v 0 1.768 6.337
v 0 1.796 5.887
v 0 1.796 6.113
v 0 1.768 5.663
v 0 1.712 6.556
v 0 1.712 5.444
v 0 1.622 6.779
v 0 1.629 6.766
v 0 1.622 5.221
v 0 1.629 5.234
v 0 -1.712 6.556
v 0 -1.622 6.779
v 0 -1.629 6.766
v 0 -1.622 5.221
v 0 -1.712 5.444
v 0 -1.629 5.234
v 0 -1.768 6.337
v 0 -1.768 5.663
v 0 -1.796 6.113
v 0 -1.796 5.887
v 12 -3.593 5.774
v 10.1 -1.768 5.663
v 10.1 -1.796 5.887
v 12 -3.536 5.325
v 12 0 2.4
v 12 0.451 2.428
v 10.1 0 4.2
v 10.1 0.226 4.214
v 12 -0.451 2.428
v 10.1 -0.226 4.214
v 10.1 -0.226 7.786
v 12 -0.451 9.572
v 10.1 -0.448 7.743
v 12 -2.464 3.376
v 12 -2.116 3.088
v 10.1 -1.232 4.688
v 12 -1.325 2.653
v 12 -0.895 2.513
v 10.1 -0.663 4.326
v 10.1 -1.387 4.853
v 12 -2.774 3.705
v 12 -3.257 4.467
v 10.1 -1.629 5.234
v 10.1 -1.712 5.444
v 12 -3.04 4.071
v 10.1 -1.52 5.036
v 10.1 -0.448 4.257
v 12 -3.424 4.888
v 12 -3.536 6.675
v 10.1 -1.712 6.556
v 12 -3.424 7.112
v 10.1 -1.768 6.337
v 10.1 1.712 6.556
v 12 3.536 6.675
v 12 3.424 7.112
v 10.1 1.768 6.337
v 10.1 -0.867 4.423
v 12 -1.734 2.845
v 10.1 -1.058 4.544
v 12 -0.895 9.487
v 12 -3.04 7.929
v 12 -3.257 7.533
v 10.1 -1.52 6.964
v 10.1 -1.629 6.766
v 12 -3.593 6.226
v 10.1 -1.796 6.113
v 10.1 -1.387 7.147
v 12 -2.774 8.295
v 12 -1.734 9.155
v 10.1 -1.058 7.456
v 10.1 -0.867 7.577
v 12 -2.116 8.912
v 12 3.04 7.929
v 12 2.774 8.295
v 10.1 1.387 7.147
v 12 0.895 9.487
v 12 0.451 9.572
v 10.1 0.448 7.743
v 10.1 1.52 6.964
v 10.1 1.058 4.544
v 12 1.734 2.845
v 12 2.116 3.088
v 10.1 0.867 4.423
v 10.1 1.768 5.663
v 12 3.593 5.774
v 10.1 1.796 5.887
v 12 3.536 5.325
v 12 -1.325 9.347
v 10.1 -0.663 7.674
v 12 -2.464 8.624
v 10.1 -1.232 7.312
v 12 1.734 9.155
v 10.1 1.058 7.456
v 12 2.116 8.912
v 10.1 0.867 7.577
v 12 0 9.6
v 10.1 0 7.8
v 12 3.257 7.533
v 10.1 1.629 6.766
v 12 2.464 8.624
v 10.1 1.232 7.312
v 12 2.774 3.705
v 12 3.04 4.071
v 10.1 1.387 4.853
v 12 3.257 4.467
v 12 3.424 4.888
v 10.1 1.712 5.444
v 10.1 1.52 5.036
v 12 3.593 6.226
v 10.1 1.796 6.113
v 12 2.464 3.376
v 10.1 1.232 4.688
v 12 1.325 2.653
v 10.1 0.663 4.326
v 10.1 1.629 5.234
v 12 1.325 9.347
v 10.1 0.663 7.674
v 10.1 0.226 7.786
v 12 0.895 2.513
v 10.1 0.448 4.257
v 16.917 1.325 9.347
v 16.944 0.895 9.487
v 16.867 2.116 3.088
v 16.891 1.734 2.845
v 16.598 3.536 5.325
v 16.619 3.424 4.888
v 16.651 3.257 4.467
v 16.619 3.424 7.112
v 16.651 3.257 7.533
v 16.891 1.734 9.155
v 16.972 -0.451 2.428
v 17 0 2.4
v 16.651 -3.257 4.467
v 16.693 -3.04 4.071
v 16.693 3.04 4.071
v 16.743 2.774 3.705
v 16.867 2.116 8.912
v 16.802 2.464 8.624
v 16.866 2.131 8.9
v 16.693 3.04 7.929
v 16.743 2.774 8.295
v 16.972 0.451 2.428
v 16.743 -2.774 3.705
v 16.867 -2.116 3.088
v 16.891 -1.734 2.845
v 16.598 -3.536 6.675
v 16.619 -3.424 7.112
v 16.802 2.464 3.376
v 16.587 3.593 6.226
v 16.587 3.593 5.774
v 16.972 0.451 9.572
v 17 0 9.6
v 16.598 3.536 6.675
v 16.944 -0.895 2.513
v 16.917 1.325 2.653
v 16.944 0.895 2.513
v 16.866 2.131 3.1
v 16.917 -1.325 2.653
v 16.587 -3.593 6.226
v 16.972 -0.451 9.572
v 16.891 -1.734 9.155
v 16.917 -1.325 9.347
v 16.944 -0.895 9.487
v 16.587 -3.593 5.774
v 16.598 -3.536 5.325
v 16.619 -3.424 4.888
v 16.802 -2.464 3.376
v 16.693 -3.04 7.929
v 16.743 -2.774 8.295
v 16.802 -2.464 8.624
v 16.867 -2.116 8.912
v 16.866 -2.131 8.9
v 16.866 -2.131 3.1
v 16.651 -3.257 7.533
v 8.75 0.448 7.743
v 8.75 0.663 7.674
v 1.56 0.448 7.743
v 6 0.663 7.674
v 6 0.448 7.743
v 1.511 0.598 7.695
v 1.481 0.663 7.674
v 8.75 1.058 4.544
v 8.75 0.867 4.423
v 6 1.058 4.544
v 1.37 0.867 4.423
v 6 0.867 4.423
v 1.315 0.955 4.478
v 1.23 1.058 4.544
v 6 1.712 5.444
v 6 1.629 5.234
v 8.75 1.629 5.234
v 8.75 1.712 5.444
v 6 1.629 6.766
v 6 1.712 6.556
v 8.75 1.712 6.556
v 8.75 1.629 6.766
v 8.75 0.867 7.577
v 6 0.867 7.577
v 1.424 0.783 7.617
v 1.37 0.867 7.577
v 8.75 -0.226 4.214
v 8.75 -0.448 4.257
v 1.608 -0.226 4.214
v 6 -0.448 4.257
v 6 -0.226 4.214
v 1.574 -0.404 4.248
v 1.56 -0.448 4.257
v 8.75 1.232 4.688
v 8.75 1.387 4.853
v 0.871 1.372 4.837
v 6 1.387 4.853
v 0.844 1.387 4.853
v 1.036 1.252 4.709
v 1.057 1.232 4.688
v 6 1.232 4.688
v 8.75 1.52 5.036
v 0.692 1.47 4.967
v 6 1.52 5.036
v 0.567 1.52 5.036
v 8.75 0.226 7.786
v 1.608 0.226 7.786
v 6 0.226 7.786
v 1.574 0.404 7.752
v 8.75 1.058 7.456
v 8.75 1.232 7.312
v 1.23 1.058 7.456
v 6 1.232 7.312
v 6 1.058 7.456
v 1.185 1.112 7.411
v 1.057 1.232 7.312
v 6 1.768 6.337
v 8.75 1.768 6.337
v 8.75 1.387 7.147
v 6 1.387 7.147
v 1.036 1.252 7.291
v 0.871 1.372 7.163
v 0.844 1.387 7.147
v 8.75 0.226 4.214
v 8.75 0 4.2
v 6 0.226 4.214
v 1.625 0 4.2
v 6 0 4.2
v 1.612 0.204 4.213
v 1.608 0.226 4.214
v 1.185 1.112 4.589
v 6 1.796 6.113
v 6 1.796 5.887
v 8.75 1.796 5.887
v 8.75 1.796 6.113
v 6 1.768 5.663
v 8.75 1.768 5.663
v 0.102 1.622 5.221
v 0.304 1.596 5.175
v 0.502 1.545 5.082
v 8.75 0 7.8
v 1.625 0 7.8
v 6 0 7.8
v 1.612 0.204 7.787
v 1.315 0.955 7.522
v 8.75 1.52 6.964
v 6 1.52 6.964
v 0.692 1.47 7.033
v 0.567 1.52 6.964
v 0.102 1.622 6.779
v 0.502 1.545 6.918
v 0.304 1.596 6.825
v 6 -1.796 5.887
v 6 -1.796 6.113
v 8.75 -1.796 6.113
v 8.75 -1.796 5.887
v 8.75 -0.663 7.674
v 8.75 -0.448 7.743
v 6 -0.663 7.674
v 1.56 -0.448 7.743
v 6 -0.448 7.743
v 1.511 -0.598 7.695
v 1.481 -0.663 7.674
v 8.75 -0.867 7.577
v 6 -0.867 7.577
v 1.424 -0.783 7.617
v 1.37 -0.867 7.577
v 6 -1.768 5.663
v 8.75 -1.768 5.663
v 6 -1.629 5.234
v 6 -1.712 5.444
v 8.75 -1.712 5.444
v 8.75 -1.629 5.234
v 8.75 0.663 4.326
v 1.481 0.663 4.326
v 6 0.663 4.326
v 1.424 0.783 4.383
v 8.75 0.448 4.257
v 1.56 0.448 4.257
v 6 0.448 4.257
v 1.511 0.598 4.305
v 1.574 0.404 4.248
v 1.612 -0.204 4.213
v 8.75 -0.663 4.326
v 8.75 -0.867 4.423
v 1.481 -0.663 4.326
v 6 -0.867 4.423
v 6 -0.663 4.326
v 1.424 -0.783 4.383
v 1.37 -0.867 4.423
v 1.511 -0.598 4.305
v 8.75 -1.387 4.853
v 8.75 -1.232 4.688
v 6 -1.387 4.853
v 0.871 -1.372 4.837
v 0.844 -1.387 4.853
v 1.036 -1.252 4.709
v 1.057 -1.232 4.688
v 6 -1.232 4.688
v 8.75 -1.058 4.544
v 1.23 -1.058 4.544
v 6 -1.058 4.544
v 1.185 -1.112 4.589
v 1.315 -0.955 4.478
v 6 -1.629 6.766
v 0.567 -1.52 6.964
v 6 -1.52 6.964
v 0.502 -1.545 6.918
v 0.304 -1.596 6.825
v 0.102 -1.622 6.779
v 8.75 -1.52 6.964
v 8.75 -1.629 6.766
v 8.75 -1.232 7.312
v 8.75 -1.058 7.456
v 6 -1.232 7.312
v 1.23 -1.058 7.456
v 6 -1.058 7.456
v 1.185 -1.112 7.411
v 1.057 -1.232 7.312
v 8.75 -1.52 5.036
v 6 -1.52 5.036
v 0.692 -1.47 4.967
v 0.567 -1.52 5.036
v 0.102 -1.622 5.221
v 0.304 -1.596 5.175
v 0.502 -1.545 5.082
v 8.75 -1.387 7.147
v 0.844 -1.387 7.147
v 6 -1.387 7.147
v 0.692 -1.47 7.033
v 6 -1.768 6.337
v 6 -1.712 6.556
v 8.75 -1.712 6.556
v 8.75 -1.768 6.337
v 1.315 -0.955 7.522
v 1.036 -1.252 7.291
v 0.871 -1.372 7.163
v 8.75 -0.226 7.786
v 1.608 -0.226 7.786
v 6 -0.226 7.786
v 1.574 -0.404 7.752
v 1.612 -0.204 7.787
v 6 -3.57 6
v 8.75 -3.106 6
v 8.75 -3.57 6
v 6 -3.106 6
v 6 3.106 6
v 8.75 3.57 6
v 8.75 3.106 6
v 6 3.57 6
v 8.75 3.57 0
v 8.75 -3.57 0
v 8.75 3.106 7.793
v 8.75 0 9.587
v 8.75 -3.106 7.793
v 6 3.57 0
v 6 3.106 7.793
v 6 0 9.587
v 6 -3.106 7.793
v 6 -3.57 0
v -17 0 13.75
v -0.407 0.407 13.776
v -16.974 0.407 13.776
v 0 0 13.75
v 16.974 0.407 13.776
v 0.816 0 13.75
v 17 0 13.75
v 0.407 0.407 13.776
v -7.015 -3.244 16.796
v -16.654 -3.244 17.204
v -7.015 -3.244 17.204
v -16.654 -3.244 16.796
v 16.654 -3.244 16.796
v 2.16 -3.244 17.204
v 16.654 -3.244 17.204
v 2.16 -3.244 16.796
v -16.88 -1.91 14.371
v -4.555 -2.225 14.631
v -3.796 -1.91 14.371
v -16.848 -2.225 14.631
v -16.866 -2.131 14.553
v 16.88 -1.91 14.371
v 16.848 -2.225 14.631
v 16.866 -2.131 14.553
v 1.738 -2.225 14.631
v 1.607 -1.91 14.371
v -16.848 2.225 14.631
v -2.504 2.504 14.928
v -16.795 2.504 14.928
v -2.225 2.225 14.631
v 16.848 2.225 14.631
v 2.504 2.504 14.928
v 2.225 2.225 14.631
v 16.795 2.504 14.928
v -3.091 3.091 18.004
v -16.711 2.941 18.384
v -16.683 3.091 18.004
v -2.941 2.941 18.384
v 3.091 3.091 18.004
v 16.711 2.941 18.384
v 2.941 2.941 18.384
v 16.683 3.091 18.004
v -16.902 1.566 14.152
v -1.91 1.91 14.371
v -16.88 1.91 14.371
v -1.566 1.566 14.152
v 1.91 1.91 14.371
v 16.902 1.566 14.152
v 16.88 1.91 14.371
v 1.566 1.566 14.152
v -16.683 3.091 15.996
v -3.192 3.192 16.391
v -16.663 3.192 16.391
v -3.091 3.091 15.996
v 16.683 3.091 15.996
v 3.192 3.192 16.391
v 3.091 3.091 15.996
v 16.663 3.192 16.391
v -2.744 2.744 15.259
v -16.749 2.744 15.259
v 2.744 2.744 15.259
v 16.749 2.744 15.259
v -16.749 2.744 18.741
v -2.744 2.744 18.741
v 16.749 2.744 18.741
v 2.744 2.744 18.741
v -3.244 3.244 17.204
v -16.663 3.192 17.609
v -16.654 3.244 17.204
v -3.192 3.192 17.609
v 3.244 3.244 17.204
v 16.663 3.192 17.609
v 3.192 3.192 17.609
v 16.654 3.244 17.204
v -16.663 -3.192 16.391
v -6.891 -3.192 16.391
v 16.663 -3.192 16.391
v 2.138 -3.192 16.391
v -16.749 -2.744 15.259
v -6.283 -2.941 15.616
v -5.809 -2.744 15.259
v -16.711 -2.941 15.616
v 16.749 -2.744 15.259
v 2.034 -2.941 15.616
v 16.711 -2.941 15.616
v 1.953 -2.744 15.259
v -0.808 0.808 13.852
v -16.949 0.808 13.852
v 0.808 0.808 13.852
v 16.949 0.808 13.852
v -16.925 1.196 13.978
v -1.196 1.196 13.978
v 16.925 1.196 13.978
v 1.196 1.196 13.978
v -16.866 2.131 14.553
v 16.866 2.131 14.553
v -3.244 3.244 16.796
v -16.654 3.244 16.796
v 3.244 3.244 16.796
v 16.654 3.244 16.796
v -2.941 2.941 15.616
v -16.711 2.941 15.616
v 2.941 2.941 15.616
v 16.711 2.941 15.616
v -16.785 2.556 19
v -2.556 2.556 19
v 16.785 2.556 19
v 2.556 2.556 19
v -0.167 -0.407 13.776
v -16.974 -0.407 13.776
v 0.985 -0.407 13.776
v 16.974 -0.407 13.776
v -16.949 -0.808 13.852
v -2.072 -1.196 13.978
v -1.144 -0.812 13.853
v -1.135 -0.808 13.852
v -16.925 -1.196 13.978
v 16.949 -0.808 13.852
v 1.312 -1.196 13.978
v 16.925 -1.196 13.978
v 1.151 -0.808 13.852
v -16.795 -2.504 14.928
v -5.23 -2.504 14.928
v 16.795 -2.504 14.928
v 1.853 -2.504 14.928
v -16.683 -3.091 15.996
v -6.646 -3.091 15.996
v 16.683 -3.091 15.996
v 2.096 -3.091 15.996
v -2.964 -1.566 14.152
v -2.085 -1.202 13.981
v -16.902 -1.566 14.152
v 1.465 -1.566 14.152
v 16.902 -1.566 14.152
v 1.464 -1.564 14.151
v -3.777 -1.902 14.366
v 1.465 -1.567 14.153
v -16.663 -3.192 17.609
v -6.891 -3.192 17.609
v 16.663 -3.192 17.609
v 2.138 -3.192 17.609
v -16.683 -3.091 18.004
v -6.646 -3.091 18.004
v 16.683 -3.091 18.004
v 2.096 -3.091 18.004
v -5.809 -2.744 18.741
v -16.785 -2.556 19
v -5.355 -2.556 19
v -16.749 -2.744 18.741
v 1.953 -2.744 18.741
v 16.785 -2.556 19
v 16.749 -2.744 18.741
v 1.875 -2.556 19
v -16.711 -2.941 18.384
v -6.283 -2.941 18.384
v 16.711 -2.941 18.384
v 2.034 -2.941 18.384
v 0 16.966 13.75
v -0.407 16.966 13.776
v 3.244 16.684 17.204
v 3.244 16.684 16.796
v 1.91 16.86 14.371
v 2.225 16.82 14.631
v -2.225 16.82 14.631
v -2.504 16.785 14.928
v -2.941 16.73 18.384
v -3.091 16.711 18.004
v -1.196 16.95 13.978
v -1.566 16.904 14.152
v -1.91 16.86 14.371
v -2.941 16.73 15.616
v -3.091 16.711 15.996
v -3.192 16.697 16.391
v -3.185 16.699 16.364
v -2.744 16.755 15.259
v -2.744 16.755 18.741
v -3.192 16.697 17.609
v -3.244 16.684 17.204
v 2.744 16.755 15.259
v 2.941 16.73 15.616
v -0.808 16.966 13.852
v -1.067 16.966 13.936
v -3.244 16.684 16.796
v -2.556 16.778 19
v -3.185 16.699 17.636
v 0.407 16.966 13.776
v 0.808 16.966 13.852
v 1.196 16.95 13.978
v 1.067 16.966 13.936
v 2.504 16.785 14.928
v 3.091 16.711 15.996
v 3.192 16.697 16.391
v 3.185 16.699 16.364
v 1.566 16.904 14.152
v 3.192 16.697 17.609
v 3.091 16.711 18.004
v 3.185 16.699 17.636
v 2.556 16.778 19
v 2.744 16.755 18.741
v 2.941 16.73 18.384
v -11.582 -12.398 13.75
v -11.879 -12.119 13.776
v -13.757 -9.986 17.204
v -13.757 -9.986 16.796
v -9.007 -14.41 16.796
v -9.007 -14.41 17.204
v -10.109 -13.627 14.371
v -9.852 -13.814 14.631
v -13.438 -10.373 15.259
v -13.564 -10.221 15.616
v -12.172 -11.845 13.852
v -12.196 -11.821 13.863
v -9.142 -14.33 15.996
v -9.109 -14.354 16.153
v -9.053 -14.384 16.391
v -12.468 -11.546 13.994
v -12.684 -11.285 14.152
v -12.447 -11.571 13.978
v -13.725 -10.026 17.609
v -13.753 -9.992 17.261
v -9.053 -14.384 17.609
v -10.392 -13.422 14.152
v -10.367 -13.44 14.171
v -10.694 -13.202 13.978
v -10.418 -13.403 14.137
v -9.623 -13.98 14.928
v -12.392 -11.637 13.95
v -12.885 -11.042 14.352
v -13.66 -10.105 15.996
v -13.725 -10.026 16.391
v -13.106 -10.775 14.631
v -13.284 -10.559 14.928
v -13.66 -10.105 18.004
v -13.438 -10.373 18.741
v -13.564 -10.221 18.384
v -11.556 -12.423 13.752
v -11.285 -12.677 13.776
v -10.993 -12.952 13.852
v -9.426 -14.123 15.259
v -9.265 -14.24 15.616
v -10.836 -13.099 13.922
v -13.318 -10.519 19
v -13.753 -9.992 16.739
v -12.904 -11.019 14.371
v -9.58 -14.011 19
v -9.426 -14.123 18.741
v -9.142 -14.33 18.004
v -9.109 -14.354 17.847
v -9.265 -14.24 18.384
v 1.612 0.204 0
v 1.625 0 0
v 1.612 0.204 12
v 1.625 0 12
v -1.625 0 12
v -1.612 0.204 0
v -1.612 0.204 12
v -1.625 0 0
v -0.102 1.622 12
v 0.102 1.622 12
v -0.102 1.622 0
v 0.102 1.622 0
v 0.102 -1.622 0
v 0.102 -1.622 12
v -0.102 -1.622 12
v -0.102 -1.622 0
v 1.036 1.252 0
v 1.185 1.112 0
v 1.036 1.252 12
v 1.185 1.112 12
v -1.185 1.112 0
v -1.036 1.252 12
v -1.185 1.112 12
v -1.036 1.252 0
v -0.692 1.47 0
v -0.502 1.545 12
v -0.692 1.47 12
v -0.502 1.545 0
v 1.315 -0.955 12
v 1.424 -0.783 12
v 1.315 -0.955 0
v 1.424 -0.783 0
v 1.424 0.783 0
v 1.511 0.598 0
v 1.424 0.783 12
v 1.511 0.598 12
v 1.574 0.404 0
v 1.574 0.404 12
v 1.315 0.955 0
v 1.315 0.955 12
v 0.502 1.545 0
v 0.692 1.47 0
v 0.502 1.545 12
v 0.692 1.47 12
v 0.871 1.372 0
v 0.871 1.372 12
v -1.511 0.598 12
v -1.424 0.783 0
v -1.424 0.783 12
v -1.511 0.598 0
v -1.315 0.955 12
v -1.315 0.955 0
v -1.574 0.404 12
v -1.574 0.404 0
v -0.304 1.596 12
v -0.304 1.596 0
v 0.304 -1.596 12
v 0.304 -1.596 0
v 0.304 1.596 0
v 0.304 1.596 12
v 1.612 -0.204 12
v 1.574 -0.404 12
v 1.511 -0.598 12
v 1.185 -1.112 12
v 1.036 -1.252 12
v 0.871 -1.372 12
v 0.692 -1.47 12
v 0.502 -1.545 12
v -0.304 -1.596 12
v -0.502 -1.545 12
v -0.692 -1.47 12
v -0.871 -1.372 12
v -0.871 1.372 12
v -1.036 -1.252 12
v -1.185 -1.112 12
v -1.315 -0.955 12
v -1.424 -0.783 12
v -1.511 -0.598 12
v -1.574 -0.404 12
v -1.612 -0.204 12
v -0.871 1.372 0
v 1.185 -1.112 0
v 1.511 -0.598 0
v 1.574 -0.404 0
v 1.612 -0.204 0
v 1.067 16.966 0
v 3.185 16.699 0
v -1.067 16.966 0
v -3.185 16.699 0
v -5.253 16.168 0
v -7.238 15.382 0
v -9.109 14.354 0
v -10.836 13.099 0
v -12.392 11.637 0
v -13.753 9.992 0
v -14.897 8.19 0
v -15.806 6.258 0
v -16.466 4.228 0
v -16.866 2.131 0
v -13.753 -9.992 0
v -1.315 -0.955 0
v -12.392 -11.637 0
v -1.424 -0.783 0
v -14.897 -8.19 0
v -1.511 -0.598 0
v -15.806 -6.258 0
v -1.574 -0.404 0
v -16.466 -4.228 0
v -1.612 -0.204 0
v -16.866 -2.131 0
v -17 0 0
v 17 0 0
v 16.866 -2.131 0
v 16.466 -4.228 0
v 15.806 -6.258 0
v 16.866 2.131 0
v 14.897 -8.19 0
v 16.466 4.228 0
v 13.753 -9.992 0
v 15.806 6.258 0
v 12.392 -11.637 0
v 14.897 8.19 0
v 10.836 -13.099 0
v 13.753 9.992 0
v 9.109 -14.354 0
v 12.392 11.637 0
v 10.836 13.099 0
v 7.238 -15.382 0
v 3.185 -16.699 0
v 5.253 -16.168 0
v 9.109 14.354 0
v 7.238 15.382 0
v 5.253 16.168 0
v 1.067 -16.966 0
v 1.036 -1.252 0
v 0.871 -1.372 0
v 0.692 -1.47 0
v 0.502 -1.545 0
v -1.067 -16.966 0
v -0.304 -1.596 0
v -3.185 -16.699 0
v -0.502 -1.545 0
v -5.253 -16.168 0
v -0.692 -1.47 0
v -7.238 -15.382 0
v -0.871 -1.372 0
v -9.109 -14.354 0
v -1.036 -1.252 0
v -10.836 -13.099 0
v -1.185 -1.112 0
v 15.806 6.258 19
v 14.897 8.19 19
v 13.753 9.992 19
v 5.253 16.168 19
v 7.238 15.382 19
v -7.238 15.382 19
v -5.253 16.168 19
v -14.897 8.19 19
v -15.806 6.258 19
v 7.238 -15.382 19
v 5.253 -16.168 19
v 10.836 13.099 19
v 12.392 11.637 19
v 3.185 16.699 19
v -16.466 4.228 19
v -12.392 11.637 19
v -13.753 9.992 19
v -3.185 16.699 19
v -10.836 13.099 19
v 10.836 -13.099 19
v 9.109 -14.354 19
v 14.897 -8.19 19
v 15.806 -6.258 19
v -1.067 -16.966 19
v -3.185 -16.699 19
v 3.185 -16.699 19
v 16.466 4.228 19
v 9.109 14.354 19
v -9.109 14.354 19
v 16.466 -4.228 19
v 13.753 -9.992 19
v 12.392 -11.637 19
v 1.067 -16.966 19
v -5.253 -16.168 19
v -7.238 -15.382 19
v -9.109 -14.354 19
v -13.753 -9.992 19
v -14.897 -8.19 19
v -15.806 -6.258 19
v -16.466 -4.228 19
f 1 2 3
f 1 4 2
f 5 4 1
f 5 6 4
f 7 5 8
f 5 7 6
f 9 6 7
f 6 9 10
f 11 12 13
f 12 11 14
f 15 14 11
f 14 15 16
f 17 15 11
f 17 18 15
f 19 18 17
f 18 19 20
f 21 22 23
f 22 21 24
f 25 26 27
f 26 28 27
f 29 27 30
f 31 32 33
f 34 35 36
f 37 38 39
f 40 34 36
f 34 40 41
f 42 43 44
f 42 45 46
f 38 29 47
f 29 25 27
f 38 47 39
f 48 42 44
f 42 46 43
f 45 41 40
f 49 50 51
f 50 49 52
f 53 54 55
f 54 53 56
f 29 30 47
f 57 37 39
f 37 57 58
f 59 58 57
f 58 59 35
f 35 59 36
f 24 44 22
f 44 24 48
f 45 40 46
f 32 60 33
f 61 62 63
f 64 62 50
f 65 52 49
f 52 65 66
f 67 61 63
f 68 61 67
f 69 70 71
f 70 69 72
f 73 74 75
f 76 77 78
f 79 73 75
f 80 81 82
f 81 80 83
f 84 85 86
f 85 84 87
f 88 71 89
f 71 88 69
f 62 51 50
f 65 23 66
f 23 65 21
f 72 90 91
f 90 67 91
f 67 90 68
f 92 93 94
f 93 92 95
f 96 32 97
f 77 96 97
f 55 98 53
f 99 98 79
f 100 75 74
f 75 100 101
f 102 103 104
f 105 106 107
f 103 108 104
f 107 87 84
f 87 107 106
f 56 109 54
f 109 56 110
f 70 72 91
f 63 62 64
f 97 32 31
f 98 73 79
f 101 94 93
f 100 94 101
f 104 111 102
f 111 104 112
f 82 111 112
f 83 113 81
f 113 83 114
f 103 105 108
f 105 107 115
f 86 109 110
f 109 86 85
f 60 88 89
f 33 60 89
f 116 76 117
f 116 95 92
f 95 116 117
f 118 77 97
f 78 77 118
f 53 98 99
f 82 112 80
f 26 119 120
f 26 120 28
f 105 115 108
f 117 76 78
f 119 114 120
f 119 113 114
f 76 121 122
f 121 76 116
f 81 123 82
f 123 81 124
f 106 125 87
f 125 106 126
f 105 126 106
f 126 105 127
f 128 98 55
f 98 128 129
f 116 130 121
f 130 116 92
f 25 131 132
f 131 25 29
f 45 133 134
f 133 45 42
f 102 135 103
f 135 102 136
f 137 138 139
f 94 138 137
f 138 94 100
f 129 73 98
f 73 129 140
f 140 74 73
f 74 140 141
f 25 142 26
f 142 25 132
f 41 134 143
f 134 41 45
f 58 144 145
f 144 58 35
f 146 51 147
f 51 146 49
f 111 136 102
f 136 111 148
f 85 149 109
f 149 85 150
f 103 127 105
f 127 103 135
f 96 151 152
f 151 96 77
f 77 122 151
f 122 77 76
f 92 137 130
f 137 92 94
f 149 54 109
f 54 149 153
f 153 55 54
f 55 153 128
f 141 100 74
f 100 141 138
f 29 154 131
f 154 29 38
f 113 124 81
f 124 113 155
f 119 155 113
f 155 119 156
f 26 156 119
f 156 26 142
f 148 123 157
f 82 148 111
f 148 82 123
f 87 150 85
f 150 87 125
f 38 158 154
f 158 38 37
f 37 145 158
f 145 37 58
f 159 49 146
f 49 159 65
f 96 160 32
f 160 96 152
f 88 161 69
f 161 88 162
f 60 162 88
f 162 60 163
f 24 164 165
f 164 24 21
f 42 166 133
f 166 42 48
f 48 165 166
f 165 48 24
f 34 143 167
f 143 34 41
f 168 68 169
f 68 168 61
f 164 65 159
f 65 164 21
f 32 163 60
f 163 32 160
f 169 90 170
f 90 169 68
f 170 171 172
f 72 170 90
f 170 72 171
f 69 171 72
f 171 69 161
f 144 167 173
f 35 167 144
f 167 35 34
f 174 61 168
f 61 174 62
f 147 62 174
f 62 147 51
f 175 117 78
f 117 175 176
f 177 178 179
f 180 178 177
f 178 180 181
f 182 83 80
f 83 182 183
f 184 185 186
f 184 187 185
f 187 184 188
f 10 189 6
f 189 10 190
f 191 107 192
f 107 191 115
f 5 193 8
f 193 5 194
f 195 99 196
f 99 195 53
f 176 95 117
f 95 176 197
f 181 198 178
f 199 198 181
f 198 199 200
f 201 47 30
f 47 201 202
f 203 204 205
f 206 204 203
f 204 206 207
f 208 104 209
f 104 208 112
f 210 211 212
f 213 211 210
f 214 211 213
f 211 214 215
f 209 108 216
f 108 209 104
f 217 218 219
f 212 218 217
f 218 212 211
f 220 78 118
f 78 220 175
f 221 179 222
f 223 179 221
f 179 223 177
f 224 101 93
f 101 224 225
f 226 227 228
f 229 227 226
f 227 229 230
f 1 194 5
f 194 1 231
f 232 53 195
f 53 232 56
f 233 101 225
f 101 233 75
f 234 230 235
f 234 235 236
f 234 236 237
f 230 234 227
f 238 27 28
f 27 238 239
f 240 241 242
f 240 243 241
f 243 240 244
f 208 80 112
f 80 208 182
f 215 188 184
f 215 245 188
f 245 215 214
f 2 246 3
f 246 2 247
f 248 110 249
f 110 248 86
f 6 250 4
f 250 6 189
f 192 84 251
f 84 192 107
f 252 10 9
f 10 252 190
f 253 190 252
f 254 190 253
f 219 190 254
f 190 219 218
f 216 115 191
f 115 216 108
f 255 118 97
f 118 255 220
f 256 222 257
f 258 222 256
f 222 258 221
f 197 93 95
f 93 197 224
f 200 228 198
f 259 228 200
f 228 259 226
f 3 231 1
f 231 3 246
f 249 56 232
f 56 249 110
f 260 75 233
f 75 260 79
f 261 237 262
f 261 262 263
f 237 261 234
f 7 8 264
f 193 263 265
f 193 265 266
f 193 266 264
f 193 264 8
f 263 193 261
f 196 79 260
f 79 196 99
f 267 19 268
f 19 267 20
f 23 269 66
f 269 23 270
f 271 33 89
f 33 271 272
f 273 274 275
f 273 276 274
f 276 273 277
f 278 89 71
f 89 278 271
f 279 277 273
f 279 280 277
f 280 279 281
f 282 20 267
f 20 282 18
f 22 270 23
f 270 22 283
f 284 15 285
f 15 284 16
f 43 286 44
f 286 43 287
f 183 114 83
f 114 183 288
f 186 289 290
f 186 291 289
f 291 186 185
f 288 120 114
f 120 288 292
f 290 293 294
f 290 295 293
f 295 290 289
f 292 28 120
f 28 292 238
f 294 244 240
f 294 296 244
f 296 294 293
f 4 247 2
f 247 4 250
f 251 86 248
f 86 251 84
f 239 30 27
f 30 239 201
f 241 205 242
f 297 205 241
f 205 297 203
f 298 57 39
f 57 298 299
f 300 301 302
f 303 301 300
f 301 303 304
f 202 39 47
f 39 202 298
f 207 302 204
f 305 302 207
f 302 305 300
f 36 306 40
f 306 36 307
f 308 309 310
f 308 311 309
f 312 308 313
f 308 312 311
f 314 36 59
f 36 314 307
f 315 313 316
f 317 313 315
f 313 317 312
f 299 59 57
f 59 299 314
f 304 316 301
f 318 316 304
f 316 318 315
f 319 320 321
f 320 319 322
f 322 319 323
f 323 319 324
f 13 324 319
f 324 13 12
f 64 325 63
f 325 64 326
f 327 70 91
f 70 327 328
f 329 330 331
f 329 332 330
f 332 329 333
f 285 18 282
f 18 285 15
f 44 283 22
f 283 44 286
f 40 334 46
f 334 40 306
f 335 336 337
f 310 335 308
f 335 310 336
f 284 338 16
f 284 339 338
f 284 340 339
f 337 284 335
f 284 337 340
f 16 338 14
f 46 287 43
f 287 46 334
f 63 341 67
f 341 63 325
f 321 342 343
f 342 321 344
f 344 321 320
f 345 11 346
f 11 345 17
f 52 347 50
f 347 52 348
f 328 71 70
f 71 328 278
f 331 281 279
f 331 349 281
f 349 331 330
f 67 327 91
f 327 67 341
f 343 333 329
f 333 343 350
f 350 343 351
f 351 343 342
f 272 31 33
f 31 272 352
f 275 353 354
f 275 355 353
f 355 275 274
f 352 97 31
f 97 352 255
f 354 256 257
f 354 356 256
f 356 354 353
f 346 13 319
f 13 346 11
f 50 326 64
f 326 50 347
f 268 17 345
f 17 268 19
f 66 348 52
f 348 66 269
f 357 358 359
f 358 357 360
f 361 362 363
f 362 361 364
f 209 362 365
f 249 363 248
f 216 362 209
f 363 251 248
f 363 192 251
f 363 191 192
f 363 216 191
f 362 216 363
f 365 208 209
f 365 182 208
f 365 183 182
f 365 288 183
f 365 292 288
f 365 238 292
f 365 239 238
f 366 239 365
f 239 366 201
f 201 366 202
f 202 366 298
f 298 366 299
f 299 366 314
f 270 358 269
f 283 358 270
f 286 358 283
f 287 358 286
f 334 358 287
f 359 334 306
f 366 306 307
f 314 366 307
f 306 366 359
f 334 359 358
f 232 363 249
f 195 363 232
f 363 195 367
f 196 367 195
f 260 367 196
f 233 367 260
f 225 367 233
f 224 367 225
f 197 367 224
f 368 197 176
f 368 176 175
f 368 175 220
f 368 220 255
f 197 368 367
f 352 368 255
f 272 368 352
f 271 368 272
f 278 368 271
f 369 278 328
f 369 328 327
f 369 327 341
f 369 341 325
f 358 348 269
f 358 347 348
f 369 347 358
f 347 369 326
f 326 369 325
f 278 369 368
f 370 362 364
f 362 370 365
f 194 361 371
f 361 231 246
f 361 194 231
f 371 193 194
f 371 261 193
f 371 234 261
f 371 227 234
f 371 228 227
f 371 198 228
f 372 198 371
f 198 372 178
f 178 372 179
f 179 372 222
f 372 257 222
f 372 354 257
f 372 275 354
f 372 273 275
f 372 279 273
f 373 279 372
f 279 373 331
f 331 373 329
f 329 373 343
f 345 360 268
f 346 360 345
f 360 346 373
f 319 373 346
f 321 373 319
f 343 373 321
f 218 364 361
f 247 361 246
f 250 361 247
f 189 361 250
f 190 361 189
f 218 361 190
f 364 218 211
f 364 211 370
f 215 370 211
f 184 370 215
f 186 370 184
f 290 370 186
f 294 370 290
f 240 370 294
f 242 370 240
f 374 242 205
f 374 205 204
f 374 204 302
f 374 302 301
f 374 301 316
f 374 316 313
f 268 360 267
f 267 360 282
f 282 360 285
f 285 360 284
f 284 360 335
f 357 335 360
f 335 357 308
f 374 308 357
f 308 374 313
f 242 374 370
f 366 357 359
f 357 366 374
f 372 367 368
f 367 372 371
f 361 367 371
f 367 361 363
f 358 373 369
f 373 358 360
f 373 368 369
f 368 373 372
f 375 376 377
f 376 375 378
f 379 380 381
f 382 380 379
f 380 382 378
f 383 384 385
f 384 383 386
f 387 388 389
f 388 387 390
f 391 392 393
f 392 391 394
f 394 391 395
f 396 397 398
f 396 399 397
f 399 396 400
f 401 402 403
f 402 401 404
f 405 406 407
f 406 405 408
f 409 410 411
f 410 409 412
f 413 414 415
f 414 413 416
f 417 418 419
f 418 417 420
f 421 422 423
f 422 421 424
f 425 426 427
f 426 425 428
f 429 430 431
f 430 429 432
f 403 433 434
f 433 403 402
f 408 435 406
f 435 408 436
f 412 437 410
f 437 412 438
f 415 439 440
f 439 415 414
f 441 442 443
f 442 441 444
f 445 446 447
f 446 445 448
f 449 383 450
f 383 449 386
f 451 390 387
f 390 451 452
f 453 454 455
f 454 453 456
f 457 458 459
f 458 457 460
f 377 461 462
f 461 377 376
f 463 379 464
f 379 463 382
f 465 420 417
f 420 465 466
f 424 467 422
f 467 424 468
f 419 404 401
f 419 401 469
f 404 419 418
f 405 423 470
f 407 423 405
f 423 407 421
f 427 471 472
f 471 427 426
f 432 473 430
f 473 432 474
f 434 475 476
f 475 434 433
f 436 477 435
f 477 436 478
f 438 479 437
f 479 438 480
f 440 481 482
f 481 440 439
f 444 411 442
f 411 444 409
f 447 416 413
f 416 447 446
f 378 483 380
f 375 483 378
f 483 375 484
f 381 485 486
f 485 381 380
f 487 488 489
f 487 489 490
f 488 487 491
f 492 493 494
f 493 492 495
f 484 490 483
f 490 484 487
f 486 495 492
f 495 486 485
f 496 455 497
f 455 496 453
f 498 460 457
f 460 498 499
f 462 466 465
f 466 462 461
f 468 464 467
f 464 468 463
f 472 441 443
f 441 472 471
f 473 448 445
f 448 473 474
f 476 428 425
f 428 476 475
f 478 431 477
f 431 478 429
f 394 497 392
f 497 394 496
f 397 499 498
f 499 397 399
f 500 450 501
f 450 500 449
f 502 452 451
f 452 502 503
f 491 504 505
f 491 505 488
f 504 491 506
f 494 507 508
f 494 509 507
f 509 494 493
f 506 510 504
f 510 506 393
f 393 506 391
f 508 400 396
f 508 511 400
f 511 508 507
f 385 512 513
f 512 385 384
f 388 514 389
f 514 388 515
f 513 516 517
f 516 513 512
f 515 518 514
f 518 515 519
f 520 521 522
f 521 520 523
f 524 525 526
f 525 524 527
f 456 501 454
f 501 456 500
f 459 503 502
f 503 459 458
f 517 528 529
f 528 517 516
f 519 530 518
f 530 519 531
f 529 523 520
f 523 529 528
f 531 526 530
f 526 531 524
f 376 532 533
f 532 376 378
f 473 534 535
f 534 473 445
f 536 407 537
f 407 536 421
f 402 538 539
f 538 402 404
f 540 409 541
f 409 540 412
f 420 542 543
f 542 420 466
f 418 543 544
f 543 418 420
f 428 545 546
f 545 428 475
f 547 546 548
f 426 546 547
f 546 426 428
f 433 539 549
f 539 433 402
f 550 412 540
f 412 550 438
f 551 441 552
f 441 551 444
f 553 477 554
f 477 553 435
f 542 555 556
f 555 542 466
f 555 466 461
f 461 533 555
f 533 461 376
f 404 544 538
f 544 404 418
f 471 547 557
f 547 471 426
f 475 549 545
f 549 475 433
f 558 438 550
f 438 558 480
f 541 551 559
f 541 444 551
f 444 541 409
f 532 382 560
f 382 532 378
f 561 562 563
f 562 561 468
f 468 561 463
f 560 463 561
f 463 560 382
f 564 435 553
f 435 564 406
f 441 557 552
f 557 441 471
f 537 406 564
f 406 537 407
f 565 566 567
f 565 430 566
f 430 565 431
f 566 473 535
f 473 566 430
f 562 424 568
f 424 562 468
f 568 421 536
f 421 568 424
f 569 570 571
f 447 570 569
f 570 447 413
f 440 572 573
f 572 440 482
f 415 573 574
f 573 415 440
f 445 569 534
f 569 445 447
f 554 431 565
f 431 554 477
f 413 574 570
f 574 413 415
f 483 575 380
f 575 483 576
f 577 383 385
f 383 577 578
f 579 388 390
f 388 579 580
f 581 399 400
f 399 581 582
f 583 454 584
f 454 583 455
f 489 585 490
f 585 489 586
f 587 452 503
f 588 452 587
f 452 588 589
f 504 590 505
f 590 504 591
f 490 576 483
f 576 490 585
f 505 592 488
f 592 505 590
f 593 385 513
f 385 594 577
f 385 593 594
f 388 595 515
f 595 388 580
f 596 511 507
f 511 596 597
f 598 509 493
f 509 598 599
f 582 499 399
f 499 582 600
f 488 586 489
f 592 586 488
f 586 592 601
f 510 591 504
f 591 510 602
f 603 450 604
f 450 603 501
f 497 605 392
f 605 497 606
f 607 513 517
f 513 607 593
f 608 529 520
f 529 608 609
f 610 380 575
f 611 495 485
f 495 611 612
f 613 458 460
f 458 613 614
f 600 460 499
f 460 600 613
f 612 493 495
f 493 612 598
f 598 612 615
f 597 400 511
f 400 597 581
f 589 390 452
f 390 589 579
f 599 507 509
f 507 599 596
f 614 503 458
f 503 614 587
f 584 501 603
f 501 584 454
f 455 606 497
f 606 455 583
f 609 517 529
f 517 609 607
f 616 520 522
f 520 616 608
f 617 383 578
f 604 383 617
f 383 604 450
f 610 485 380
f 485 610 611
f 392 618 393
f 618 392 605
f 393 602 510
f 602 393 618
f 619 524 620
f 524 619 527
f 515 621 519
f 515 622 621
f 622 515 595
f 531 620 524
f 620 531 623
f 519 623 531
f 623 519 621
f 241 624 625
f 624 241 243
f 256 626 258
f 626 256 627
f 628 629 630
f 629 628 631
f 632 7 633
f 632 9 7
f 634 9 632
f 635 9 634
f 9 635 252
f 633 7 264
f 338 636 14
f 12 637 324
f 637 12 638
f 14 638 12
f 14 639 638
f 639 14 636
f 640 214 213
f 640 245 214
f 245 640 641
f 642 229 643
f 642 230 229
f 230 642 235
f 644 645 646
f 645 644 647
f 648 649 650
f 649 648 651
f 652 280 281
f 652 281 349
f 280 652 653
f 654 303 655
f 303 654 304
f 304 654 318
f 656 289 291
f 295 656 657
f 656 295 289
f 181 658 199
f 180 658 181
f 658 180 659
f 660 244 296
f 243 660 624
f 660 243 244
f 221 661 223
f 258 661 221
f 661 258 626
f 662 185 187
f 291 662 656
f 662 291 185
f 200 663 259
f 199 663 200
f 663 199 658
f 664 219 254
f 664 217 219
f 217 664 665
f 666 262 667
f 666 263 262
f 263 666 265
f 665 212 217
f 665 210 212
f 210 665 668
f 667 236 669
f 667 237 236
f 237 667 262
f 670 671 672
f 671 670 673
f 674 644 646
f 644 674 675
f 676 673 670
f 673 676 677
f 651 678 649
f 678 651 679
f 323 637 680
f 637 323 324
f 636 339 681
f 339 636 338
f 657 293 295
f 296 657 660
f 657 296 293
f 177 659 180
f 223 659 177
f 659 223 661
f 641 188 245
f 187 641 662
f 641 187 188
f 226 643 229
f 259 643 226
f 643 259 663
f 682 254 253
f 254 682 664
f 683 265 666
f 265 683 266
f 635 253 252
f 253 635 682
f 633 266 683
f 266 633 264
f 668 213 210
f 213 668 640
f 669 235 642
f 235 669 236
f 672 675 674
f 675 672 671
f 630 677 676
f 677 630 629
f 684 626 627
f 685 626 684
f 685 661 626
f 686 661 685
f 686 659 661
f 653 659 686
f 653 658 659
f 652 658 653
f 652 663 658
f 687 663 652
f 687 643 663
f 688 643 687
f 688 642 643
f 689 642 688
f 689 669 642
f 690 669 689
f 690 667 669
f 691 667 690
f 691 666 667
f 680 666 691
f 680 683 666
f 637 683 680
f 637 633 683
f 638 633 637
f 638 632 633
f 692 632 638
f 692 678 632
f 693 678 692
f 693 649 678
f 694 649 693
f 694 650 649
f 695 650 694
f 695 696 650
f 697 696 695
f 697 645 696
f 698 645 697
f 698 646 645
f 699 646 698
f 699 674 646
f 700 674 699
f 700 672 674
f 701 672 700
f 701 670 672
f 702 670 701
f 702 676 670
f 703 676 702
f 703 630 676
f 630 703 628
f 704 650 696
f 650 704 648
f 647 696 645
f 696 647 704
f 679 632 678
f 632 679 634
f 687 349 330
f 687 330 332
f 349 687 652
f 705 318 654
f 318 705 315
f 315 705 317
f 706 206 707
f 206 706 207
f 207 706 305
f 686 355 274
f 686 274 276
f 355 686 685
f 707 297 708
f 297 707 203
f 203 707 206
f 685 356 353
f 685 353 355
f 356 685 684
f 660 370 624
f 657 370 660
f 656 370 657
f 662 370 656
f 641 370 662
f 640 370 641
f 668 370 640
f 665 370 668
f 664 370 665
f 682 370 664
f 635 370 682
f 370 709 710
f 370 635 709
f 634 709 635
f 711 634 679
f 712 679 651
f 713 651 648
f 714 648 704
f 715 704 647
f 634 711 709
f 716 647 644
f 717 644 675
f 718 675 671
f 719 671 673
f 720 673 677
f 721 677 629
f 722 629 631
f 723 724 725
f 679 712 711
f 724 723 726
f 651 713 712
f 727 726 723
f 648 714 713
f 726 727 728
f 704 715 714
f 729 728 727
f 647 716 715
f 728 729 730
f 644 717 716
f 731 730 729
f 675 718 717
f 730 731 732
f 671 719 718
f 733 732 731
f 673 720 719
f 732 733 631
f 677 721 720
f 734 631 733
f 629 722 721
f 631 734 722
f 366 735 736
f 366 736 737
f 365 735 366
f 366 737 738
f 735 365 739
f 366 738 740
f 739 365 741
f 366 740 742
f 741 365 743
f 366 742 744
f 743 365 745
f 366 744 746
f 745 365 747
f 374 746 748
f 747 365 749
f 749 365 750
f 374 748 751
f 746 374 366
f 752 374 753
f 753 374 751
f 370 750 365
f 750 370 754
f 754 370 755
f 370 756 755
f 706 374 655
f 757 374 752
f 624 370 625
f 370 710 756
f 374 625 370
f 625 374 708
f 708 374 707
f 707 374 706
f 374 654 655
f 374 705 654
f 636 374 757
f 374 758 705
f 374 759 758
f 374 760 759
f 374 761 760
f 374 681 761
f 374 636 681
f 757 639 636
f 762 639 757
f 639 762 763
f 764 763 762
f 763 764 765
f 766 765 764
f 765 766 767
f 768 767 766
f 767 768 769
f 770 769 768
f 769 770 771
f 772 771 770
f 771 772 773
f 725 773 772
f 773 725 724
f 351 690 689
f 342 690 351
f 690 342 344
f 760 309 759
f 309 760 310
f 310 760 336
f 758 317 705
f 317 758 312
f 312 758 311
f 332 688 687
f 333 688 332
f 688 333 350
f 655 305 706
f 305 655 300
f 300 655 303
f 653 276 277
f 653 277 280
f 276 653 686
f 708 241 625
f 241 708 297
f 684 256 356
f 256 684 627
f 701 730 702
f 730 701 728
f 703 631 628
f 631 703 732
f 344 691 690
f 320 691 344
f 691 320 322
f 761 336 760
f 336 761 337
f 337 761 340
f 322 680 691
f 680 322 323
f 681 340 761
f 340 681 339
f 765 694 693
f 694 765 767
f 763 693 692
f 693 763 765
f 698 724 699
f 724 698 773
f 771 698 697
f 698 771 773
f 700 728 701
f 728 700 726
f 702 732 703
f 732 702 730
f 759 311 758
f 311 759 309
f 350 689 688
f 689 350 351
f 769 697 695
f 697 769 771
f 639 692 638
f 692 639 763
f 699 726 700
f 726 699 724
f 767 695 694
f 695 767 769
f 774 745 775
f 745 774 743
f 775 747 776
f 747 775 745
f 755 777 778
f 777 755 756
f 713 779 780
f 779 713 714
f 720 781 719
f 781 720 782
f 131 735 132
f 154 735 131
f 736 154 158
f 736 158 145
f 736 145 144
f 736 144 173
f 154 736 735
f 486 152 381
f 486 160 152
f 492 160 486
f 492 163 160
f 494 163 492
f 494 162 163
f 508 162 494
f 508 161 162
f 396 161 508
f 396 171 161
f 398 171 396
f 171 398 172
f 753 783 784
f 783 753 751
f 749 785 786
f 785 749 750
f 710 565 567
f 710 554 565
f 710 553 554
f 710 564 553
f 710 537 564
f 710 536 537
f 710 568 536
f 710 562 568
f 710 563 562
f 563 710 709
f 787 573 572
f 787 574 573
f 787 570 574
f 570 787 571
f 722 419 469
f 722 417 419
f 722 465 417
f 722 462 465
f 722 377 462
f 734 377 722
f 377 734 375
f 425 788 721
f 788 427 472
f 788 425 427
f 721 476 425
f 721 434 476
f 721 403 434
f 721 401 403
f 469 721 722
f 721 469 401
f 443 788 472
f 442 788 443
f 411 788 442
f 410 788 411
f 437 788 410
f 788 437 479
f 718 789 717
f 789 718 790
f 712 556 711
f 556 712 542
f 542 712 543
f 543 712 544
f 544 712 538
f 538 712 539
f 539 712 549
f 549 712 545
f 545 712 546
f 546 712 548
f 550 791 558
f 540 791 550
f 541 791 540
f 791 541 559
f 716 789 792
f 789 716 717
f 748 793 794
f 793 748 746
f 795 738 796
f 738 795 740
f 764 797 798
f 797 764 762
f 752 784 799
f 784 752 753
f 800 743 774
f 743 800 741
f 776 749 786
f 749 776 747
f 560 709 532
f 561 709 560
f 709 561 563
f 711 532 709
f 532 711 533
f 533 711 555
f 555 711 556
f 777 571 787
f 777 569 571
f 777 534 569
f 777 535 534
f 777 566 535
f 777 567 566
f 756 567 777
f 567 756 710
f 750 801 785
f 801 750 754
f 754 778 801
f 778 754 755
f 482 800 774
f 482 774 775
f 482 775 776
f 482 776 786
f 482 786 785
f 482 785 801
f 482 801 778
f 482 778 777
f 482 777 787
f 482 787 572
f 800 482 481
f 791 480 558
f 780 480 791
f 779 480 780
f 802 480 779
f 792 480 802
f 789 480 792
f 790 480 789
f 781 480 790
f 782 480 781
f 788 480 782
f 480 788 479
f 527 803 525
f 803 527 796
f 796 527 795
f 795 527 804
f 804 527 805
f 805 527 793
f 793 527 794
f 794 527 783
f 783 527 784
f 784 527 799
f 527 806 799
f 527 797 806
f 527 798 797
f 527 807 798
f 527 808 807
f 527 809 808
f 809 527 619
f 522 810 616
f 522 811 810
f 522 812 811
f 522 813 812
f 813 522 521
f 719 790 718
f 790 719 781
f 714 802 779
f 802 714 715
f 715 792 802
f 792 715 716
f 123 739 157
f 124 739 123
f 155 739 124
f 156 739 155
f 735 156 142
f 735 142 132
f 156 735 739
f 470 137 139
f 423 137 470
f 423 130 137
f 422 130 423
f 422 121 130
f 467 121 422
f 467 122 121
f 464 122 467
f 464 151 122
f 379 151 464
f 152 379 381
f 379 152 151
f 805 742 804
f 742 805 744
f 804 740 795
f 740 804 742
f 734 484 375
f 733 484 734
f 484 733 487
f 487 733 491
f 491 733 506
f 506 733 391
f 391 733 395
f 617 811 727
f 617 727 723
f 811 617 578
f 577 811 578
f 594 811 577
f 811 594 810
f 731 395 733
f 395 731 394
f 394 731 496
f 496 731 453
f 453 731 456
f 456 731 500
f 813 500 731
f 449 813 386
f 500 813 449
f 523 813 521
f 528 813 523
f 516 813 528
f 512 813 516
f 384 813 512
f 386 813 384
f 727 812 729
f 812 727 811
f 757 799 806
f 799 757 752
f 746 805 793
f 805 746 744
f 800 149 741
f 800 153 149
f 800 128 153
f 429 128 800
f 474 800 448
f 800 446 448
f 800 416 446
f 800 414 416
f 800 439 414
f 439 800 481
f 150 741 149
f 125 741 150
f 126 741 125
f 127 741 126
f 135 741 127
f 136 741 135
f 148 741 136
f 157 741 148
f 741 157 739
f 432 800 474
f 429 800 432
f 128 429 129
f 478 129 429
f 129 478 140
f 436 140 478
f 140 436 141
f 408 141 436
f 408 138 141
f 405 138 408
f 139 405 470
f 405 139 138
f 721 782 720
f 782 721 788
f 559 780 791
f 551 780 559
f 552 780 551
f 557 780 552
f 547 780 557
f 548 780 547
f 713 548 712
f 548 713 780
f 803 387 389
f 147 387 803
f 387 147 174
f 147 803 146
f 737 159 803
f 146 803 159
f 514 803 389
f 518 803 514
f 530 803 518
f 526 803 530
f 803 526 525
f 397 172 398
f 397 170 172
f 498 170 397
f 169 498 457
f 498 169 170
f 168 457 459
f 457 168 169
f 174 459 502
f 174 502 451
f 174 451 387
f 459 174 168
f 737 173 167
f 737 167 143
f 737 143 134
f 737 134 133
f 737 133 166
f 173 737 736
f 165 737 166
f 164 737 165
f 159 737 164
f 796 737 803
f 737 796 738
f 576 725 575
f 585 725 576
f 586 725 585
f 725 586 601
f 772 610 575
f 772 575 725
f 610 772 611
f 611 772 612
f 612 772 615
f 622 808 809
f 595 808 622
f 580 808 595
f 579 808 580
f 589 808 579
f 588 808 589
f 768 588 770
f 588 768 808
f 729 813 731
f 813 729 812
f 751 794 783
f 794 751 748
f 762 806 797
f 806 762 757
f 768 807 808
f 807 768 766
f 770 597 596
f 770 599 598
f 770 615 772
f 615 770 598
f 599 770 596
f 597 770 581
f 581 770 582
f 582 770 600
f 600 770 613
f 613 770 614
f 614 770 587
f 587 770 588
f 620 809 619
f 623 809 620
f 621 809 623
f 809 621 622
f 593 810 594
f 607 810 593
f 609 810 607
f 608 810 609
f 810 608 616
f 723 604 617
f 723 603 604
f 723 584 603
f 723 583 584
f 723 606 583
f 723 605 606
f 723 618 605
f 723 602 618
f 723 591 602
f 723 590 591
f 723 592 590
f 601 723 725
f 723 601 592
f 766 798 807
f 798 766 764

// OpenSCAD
$fn = 50;


difference() {
	union() {
		cylinder(h = 19, r = 17.0000000000);
	}
	union() {
		translate(v = [12, 0, 6.0000000000]) {
			rotate(a = [0, 90, 0]) {
				difference() {
					union() {
						translate(v = [0, 0, -12.0000000000]) {
							cylinder(h = 12, r = 1.5000000000);
						}
						translate(v = [0, 0, -1.9000000000]) {
							cylinder(h = 1.9000000000, r1 = 1.8000000000, r2 = 3.6000000000);
						}
						cylinder(h = 250, r = 3.6000000000);
						translate(v = [0, 0, -12.0000000000]) {
							cylinder(h = 12, r = 1.8000000000);
						}
						translate(v = [0, 0, -12.0000000000]) {
							cylinder(h = 12, r = 1.5000000000);
						}
					}
					union();
				}
			}
		}
		translate(v = [6.0000000000, 0, 6.0000000000]) {
			rotate(a = [0, 90, 0]) {
				difference() {
					union() {
						translate(v = [0.0000000000, -3.5702500000, 0]) {
							cube(size = [20, 7.1405000000, 2.7500000000]);
						}
						linear_extrude(height = 2.7500000000) {
							polygon(points = [[3.5870000000, 0.0000000000], [1.7935000000, 3.1064331234], [-1.7935000000, 3.1064331234], [-3.5870000000, 0.0000000000], [-1.7935000000, -3.1064331234], [1.7935000000, -3.1064331234]]);
						}
					}
					union();
				}
			}
		}
		#translate(v = [-100.0000000000, 0, 17.0000000000]) {
			rotate(a = [0, 90, 0]) {
				cylinder(h = 200, r = 3.2500000000);
			}
		}
		#translate(v = [0.0000000000, 0, 17.0000000000]) {
			rotate(a = [0, 90, 90]) {
				cylinder(h = 200, r = 3.2500000000);
			}
		}
		#translate(v = [-140.6053390593, -141.4213562373, 17.0000000000]) {
			rotate(a = [0, 90, 45]) {
				cylinder(h = 200, r = 3.2500000000);
			}
		}
		cylinder(h = 12, r = 1.6250000000);
	}
}
